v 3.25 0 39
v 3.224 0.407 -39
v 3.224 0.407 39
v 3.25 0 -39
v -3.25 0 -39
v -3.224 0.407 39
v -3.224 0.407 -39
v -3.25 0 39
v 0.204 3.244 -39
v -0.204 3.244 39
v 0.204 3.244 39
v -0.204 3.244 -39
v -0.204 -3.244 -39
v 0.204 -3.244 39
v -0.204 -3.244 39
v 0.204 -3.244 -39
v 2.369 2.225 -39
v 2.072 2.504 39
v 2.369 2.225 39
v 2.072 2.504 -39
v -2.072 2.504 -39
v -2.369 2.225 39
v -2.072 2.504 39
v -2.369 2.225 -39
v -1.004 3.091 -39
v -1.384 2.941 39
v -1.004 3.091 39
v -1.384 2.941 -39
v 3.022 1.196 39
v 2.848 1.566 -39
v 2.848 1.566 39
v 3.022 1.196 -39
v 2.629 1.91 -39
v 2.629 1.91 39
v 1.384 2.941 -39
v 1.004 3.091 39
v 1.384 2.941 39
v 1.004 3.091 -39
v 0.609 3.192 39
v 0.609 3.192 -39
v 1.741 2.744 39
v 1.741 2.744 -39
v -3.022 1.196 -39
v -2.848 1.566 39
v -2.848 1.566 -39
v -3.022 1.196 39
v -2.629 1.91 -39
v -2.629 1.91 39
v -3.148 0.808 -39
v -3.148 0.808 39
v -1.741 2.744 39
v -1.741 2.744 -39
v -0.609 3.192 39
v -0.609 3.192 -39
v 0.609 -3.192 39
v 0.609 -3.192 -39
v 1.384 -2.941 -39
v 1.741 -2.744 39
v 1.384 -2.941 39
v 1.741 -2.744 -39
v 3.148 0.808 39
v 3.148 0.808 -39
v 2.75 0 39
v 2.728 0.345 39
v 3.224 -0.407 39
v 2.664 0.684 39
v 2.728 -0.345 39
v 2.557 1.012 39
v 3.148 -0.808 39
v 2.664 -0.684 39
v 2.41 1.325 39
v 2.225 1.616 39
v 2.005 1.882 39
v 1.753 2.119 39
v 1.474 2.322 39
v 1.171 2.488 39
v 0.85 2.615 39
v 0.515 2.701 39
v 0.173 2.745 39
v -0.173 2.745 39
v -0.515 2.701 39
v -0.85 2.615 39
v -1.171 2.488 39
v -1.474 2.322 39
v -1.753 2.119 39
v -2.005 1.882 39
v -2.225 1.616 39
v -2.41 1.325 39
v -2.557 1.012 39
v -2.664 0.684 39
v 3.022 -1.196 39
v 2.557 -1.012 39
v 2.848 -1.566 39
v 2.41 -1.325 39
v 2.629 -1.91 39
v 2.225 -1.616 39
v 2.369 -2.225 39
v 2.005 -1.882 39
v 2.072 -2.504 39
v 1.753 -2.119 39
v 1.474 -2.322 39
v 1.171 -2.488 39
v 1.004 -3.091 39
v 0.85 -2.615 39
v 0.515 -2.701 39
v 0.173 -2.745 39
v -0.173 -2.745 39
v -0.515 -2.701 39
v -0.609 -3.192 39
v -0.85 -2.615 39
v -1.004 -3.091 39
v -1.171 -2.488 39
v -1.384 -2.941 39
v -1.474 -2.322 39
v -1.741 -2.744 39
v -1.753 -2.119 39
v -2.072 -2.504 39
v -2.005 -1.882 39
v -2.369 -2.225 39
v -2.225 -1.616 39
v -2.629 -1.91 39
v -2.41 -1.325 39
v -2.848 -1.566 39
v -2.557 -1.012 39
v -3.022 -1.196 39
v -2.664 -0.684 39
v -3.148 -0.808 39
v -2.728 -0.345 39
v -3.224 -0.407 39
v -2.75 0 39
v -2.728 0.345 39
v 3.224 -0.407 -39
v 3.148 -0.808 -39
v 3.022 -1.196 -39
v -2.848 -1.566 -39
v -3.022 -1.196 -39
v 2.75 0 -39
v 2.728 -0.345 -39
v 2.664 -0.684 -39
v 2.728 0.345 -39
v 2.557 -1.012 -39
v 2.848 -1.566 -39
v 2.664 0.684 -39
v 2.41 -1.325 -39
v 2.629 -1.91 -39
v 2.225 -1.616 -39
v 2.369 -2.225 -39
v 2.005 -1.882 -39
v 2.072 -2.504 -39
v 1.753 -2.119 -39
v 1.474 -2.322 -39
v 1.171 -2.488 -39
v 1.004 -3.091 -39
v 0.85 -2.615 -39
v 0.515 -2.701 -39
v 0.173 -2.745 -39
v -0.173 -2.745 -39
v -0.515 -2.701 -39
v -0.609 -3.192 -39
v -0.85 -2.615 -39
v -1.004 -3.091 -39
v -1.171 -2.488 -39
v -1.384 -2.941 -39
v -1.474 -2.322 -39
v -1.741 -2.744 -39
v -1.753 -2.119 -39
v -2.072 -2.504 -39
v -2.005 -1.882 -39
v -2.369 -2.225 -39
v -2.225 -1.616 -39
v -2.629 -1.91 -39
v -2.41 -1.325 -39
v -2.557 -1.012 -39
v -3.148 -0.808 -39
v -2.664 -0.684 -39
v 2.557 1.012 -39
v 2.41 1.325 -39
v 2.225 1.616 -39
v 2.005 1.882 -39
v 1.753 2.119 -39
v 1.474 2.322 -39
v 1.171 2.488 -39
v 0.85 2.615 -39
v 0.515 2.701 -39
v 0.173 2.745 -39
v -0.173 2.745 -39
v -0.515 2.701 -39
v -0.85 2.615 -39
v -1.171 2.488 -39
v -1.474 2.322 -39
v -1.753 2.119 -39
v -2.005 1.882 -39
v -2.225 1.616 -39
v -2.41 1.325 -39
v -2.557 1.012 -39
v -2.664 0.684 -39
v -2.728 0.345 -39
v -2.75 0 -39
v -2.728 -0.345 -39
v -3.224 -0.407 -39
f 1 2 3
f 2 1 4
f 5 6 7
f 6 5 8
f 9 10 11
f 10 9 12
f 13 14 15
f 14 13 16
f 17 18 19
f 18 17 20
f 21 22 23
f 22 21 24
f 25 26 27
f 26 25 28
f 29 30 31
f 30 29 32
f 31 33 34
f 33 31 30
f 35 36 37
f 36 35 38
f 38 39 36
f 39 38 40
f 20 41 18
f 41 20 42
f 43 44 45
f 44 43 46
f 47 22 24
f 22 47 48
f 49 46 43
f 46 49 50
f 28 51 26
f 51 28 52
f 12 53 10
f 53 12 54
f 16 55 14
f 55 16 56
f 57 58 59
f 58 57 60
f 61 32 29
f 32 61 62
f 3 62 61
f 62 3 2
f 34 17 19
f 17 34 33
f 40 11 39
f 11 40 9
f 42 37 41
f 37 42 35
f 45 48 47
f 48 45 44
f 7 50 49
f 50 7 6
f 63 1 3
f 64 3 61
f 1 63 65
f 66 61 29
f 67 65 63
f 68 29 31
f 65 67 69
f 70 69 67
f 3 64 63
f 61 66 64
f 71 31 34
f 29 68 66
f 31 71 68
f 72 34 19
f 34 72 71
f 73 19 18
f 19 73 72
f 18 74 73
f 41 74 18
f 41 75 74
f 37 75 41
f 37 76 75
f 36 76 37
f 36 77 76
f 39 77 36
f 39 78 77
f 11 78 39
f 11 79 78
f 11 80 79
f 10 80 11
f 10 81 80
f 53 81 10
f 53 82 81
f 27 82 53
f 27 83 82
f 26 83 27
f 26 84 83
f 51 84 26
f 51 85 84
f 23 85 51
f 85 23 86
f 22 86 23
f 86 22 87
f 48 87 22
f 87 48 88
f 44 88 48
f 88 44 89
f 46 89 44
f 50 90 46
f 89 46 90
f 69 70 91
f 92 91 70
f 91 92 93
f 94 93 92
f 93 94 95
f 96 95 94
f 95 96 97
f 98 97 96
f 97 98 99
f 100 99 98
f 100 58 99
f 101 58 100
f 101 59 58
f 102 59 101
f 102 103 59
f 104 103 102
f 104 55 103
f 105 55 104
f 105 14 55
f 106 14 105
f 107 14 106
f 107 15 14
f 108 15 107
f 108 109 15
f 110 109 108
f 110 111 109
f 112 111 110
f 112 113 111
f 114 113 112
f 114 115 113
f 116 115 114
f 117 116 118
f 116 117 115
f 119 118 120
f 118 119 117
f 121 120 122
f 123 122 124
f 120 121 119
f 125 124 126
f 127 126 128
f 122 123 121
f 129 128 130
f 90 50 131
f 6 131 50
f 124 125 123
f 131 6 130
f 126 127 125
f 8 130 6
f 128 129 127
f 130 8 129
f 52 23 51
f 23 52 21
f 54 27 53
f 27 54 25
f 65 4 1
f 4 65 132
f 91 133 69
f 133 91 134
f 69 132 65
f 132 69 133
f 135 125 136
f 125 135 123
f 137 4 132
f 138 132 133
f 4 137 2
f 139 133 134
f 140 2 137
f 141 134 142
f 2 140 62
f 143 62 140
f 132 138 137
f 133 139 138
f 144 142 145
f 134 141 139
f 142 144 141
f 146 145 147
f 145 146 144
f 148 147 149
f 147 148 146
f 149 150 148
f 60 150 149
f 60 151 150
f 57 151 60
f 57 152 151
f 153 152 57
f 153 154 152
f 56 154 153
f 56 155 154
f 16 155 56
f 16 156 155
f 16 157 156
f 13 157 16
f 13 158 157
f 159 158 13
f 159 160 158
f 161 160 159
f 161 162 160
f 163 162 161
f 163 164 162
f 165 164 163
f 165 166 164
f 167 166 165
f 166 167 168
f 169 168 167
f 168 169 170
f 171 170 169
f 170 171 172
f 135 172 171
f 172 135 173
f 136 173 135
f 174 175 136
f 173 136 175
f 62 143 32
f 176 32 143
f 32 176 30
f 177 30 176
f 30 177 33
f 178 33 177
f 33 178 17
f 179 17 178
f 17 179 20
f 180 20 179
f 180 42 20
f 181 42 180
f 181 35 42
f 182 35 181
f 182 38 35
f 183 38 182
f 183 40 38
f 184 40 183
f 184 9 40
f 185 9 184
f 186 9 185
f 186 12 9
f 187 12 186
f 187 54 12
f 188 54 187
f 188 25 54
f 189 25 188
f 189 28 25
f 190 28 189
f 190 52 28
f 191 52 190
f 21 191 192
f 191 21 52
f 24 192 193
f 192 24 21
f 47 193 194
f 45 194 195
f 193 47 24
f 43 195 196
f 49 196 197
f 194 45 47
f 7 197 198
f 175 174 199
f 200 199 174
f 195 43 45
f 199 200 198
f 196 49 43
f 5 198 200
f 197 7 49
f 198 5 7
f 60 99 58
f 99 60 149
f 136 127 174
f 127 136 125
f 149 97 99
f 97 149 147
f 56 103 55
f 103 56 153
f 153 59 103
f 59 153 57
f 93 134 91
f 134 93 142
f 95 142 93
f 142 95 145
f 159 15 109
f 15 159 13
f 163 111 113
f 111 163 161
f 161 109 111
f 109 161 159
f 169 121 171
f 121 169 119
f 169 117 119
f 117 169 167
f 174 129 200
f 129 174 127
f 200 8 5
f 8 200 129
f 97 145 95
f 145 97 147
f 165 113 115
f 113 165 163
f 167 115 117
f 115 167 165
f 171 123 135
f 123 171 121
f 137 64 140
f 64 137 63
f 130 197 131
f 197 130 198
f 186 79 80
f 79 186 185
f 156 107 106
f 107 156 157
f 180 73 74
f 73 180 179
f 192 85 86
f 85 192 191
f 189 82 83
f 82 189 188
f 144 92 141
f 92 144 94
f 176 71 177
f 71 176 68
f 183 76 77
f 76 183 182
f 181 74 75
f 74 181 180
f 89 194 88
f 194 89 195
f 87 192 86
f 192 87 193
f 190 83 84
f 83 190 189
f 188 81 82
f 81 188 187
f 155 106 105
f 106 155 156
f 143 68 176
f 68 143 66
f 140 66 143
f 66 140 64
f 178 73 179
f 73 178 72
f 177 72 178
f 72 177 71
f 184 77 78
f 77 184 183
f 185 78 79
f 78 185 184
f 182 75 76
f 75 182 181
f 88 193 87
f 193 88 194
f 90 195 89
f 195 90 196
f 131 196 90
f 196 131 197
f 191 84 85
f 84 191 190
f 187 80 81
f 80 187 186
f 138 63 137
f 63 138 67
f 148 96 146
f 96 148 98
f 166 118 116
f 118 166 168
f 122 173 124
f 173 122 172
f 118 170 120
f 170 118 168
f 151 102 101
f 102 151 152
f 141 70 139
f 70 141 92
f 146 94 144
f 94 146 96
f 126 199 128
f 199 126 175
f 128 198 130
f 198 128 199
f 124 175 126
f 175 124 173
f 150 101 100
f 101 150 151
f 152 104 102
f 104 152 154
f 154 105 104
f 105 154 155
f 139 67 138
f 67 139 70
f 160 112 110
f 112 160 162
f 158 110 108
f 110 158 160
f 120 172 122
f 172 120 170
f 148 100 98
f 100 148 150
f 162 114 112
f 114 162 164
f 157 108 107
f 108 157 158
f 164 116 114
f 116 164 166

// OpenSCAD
$fn = 50;


difference() {
	union() {
		translate(v = [0, 0, -39.0000000000]) {
			cylinder(h = 78, r = 3.2500000000);
		}
	}
	union() {
		translate(v = [0, 0, -100.0000000000]) {
			cylinder(h = 200, r = 2.7500000000);
		}
	}
}
